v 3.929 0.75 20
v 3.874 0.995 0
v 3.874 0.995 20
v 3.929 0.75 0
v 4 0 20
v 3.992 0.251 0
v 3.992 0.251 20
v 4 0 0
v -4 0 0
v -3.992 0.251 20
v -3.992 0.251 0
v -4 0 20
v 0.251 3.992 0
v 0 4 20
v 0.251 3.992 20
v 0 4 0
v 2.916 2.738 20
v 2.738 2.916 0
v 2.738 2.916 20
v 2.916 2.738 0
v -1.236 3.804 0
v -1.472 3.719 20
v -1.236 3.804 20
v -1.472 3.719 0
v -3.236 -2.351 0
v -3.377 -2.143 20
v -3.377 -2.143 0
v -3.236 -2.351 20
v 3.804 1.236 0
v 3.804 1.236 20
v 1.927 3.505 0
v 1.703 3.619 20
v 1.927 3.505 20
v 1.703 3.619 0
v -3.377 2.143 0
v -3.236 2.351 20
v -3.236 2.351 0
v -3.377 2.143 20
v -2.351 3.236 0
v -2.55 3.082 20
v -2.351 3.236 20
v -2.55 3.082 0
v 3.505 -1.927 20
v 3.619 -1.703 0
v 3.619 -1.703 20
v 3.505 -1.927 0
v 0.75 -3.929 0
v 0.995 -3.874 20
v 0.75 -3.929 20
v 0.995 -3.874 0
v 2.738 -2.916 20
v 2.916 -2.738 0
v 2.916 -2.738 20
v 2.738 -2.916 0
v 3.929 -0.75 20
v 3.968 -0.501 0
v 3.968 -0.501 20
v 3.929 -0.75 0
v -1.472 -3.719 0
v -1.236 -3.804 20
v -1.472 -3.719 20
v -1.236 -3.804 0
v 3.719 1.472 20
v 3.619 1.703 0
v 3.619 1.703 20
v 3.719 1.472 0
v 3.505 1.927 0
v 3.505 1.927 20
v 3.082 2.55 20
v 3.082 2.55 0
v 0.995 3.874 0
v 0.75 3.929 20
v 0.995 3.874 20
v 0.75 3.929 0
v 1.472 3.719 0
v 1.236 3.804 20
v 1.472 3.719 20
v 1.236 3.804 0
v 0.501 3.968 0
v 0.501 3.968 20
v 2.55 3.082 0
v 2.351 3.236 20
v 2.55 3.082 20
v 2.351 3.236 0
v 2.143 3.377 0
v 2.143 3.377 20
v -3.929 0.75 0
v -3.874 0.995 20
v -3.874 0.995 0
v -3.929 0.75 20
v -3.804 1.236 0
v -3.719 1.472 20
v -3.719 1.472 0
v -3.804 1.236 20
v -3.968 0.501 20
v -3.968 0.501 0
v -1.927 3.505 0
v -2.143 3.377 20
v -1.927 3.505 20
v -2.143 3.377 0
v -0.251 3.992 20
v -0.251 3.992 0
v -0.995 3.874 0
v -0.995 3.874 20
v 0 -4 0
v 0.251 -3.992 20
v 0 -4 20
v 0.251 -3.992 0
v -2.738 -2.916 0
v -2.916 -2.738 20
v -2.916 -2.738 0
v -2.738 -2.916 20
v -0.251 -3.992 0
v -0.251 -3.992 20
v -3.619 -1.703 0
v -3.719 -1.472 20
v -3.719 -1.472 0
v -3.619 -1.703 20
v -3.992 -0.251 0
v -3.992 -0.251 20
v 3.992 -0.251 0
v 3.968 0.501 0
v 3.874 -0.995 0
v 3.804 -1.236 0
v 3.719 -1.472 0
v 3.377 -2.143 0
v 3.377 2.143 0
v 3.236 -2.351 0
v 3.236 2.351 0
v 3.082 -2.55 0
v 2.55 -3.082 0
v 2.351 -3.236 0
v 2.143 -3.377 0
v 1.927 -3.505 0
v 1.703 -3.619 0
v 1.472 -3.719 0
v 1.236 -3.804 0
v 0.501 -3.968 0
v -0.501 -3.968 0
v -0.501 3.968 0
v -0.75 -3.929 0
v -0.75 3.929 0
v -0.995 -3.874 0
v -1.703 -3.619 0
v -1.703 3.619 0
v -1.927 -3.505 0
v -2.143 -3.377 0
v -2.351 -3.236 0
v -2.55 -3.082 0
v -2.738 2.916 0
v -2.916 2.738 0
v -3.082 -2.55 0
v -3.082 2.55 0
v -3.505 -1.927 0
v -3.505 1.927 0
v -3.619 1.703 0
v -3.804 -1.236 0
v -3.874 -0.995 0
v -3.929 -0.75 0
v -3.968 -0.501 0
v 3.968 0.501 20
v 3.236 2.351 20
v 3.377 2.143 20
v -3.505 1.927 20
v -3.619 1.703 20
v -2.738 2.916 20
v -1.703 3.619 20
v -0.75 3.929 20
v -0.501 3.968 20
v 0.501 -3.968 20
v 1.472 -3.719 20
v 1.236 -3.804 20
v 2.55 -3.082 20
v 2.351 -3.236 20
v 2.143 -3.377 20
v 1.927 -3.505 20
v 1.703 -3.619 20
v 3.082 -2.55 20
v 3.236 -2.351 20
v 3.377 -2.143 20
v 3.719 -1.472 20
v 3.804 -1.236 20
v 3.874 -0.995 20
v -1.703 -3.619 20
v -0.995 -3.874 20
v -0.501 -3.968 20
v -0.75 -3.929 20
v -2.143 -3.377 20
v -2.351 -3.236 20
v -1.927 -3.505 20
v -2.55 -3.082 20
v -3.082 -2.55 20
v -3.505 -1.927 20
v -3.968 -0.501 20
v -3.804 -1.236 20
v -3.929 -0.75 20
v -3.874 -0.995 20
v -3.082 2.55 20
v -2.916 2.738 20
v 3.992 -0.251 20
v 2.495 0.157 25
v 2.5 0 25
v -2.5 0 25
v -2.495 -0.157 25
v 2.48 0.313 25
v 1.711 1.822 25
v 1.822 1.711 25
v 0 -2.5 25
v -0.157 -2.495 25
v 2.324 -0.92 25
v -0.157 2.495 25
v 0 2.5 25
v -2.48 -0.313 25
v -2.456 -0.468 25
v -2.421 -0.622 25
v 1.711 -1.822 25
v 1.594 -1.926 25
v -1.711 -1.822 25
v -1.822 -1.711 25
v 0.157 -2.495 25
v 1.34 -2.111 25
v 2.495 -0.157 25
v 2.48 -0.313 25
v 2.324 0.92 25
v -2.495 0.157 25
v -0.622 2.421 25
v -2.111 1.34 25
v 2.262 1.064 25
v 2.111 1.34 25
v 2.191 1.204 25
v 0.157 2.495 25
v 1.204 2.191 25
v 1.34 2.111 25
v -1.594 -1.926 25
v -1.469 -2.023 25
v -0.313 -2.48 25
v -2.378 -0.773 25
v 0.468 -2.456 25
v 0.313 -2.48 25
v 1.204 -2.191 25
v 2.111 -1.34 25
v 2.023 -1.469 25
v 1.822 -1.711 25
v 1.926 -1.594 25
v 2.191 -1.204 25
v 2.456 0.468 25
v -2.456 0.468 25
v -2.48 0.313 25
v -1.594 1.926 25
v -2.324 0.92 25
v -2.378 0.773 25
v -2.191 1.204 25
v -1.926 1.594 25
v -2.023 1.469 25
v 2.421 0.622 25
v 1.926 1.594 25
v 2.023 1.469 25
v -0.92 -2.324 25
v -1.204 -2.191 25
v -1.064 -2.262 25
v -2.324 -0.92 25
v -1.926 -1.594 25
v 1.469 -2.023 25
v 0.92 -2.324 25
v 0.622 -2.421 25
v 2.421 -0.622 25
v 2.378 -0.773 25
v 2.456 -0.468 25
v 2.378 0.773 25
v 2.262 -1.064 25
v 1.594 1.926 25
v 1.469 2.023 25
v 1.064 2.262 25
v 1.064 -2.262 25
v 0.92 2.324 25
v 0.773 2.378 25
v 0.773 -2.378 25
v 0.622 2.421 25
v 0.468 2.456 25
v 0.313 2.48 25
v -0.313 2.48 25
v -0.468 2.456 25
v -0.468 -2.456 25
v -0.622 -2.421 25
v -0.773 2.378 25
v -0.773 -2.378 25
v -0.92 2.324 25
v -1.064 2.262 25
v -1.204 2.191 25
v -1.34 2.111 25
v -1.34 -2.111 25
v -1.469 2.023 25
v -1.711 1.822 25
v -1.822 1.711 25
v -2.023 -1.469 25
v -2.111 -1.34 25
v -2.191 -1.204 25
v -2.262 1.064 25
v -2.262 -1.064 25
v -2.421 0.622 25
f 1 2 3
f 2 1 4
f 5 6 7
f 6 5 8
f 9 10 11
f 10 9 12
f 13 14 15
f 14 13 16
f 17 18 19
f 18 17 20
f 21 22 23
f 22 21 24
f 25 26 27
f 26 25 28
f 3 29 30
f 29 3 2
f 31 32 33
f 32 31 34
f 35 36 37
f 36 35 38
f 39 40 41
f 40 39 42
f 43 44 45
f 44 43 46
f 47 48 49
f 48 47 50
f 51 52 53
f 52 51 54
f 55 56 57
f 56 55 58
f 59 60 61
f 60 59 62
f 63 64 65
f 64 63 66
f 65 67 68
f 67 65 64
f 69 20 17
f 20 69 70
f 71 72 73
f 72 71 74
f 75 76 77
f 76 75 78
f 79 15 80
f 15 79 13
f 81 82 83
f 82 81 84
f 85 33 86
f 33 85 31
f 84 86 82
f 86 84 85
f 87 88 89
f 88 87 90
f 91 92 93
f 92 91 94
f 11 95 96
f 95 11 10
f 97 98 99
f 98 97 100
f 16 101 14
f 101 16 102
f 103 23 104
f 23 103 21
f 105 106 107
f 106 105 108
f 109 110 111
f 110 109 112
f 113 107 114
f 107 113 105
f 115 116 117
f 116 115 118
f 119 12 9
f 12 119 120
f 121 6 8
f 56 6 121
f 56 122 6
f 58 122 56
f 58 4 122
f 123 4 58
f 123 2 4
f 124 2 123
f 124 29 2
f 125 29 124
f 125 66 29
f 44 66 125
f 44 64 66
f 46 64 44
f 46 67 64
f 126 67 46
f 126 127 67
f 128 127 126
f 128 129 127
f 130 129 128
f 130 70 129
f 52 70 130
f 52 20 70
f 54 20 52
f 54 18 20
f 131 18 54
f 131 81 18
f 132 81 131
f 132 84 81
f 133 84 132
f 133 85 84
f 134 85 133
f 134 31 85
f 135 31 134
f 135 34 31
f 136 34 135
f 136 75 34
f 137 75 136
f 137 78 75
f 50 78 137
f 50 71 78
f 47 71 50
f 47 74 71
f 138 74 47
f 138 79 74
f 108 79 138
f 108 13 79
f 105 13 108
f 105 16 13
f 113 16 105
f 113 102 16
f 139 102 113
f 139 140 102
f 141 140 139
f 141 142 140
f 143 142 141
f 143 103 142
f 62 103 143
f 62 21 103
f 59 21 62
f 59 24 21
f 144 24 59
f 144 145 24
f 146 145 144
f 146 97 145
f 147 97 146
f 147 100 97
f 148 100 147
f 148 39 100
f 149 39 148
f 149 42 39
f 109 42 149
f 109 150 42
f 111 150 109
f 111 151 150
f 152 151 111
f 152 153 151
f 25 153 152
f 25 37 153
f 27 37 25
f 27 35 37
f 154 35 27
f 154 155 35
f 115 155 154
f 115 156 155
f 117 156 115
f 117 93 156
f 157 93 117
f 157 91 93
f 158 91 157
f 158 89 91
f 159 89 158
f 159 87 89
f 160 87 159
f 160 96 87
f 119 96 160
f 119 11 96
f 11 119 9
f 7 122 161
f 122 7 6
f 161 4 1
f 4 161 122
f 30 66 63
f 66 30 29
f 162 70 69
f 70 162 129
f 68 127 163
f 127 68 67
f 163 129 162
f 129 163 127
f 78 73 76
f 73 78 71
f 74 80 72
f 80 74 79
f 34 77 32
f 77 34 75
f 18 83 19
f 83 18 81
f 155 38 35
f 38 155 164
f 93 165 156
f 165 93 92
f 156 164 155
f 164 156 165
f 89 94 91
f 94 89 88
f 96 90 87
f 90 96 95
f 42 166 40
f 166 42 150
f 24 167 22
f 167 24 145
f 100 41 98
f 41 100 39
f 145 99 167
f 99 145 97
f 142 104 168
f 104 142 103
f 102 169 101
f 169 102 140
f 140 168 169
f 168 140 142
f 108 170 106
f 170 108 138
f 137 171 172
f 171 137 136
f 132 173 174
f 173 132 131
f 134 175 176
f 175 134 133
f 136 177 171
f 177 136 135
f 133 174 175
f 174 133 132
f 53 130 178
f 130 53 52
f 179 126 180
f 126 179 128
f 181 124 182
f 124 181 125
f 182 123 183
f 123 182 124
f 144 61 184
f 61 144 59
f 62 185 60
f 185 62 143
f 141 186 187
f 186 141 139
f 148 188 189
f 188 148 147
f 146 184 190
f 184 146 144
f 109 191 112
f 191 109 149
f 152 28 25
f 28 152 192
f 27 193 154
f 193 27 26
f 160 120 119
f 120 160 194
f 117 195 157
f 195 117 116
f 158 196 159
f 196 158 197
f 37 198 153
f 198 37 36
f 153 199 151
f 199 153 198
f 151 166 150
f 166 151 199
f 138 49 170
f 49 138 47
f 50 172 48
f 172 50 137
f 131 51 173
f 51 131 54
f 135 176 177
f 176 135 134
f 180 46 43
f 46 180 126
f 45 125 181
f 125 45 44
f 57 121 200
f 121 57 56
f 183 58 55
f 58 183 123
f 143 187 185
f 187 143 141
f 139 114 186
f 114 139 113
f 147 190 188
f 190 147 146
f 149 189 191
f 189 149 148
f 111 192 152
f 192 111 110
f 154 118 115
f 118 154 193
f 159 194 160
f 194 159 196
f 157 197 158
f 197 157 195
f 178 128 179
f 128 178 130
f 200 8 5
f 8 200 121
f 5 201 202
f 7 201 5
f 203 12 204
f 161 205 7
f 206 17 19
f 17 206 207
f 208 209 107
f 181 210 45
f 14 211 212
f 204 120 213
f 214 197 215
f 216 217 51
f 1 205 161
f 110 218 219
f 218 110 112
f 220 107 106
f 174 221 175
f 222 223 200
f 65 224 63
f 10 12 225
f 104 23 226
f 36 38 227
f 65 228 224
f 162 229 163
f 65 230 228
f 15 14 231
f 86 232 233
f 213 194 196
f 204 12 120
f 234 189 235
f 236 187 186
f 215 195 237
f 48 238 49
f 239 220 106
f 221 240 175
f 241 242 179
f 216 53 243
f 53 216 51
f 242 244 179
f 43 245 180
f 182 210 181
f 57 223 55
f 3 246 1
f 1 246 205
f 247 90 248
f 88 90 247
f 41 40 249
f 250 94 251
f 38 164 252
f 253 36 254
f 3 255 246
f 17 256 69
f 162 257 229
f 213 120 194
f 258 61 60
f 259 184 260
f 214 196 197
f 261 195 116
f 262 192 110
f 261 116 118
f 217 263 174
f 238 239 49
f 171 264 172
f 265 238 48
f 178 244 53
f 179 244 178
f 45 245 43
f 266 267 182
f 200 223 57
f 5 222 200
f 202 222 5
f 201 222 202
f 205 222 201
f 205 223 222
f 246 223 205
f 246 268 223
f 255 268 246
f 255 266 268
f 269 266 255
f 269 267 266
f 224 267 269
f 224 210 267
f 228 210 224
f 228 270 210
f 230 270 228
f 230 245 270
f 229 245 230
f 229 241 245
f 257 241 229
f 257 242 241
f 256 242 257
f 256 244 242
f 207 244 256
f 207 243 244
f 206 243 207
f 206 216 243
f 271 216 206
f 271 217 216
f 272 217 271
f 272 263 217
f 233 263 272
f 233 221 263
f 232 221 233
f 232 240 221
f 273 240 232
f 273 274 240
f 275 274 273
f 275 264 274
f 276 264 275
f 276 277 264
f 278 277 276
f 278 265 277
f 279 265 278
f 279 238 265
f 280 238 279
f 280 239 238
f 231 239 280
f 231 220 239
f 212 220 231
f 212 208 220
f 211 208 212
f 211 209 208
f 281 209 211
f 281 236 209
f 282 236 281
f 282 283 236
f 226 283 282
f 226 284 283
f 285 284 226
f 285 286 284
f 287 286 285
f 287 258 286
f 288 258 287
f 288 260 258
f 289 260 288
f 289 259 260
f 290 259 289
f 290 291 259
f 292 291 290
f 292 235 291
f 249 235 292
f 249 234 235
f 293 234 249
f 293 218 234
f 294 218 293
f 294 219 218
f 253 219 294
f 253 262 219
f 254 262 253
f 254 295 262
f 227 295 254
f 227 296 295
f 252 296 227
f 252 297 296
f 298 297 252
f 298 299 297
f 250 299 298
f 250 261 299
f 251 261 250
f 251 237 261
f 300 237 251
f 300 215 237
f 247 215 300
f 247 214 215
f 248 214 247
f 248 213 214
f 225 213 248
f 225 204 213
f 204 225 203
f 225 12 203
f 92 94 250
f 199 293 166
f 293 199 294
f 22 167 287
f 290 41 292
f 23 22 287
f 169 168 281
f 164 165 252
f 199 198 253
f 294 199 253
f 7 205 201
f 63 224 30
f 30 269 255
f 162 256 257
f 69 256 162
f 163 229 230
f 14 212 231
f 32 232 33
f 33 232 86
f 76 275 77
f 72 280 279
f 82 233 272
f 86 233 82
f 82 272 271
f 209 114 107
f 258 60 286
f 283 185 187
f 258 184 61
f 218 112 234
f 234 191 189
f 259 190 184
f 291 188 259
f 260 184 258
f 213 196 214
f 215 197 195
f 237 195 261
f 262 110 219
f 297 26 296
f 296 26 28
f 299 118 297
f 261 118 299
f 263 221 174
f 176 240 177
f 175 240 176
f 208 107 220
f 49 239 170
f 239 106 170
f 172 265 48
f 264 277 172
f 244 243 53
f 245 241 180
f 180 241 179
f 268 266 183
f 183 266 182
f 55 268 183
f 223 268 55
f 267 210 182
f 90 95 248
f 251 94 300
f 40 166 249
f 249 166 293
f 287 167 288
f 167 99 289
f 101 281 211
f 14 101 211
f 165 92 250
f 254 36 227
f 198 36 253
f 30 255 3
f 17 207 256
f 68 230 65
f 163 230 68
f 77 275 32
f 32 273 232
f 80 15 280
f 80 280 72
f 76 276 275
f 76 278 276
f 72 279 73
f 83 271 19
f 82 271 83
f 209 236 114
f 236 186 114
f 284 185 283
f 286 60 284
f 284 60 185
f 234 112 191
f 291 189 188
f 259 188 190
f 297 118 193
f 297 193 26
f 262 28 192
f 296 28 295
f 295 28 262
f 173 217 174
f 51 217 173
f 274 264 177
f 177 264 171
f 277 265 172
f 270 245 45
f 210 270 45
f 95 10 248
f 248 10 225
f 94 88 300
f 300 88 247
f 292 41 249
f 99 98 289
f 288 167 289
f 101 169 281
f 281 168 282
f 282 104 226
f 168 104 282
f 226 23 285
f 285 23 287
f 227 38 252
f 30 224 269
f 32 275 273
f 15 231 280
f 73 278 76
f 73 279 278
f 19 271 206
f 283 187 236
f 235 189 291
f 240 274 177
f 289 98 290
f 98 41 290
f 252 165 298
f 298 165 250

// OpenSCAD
$fn = 100;

roddia = 8;
enddia = 5;
rodlegnth = 20;
endlegnth = 5;

union(){
    cylinder(r = roddia/2, h = rodlegnth);
    translate([0,0,rodlegnth]){cylinder(r1 = roddia/2, r2 = enddia/2, h = endlegnth);}
}
